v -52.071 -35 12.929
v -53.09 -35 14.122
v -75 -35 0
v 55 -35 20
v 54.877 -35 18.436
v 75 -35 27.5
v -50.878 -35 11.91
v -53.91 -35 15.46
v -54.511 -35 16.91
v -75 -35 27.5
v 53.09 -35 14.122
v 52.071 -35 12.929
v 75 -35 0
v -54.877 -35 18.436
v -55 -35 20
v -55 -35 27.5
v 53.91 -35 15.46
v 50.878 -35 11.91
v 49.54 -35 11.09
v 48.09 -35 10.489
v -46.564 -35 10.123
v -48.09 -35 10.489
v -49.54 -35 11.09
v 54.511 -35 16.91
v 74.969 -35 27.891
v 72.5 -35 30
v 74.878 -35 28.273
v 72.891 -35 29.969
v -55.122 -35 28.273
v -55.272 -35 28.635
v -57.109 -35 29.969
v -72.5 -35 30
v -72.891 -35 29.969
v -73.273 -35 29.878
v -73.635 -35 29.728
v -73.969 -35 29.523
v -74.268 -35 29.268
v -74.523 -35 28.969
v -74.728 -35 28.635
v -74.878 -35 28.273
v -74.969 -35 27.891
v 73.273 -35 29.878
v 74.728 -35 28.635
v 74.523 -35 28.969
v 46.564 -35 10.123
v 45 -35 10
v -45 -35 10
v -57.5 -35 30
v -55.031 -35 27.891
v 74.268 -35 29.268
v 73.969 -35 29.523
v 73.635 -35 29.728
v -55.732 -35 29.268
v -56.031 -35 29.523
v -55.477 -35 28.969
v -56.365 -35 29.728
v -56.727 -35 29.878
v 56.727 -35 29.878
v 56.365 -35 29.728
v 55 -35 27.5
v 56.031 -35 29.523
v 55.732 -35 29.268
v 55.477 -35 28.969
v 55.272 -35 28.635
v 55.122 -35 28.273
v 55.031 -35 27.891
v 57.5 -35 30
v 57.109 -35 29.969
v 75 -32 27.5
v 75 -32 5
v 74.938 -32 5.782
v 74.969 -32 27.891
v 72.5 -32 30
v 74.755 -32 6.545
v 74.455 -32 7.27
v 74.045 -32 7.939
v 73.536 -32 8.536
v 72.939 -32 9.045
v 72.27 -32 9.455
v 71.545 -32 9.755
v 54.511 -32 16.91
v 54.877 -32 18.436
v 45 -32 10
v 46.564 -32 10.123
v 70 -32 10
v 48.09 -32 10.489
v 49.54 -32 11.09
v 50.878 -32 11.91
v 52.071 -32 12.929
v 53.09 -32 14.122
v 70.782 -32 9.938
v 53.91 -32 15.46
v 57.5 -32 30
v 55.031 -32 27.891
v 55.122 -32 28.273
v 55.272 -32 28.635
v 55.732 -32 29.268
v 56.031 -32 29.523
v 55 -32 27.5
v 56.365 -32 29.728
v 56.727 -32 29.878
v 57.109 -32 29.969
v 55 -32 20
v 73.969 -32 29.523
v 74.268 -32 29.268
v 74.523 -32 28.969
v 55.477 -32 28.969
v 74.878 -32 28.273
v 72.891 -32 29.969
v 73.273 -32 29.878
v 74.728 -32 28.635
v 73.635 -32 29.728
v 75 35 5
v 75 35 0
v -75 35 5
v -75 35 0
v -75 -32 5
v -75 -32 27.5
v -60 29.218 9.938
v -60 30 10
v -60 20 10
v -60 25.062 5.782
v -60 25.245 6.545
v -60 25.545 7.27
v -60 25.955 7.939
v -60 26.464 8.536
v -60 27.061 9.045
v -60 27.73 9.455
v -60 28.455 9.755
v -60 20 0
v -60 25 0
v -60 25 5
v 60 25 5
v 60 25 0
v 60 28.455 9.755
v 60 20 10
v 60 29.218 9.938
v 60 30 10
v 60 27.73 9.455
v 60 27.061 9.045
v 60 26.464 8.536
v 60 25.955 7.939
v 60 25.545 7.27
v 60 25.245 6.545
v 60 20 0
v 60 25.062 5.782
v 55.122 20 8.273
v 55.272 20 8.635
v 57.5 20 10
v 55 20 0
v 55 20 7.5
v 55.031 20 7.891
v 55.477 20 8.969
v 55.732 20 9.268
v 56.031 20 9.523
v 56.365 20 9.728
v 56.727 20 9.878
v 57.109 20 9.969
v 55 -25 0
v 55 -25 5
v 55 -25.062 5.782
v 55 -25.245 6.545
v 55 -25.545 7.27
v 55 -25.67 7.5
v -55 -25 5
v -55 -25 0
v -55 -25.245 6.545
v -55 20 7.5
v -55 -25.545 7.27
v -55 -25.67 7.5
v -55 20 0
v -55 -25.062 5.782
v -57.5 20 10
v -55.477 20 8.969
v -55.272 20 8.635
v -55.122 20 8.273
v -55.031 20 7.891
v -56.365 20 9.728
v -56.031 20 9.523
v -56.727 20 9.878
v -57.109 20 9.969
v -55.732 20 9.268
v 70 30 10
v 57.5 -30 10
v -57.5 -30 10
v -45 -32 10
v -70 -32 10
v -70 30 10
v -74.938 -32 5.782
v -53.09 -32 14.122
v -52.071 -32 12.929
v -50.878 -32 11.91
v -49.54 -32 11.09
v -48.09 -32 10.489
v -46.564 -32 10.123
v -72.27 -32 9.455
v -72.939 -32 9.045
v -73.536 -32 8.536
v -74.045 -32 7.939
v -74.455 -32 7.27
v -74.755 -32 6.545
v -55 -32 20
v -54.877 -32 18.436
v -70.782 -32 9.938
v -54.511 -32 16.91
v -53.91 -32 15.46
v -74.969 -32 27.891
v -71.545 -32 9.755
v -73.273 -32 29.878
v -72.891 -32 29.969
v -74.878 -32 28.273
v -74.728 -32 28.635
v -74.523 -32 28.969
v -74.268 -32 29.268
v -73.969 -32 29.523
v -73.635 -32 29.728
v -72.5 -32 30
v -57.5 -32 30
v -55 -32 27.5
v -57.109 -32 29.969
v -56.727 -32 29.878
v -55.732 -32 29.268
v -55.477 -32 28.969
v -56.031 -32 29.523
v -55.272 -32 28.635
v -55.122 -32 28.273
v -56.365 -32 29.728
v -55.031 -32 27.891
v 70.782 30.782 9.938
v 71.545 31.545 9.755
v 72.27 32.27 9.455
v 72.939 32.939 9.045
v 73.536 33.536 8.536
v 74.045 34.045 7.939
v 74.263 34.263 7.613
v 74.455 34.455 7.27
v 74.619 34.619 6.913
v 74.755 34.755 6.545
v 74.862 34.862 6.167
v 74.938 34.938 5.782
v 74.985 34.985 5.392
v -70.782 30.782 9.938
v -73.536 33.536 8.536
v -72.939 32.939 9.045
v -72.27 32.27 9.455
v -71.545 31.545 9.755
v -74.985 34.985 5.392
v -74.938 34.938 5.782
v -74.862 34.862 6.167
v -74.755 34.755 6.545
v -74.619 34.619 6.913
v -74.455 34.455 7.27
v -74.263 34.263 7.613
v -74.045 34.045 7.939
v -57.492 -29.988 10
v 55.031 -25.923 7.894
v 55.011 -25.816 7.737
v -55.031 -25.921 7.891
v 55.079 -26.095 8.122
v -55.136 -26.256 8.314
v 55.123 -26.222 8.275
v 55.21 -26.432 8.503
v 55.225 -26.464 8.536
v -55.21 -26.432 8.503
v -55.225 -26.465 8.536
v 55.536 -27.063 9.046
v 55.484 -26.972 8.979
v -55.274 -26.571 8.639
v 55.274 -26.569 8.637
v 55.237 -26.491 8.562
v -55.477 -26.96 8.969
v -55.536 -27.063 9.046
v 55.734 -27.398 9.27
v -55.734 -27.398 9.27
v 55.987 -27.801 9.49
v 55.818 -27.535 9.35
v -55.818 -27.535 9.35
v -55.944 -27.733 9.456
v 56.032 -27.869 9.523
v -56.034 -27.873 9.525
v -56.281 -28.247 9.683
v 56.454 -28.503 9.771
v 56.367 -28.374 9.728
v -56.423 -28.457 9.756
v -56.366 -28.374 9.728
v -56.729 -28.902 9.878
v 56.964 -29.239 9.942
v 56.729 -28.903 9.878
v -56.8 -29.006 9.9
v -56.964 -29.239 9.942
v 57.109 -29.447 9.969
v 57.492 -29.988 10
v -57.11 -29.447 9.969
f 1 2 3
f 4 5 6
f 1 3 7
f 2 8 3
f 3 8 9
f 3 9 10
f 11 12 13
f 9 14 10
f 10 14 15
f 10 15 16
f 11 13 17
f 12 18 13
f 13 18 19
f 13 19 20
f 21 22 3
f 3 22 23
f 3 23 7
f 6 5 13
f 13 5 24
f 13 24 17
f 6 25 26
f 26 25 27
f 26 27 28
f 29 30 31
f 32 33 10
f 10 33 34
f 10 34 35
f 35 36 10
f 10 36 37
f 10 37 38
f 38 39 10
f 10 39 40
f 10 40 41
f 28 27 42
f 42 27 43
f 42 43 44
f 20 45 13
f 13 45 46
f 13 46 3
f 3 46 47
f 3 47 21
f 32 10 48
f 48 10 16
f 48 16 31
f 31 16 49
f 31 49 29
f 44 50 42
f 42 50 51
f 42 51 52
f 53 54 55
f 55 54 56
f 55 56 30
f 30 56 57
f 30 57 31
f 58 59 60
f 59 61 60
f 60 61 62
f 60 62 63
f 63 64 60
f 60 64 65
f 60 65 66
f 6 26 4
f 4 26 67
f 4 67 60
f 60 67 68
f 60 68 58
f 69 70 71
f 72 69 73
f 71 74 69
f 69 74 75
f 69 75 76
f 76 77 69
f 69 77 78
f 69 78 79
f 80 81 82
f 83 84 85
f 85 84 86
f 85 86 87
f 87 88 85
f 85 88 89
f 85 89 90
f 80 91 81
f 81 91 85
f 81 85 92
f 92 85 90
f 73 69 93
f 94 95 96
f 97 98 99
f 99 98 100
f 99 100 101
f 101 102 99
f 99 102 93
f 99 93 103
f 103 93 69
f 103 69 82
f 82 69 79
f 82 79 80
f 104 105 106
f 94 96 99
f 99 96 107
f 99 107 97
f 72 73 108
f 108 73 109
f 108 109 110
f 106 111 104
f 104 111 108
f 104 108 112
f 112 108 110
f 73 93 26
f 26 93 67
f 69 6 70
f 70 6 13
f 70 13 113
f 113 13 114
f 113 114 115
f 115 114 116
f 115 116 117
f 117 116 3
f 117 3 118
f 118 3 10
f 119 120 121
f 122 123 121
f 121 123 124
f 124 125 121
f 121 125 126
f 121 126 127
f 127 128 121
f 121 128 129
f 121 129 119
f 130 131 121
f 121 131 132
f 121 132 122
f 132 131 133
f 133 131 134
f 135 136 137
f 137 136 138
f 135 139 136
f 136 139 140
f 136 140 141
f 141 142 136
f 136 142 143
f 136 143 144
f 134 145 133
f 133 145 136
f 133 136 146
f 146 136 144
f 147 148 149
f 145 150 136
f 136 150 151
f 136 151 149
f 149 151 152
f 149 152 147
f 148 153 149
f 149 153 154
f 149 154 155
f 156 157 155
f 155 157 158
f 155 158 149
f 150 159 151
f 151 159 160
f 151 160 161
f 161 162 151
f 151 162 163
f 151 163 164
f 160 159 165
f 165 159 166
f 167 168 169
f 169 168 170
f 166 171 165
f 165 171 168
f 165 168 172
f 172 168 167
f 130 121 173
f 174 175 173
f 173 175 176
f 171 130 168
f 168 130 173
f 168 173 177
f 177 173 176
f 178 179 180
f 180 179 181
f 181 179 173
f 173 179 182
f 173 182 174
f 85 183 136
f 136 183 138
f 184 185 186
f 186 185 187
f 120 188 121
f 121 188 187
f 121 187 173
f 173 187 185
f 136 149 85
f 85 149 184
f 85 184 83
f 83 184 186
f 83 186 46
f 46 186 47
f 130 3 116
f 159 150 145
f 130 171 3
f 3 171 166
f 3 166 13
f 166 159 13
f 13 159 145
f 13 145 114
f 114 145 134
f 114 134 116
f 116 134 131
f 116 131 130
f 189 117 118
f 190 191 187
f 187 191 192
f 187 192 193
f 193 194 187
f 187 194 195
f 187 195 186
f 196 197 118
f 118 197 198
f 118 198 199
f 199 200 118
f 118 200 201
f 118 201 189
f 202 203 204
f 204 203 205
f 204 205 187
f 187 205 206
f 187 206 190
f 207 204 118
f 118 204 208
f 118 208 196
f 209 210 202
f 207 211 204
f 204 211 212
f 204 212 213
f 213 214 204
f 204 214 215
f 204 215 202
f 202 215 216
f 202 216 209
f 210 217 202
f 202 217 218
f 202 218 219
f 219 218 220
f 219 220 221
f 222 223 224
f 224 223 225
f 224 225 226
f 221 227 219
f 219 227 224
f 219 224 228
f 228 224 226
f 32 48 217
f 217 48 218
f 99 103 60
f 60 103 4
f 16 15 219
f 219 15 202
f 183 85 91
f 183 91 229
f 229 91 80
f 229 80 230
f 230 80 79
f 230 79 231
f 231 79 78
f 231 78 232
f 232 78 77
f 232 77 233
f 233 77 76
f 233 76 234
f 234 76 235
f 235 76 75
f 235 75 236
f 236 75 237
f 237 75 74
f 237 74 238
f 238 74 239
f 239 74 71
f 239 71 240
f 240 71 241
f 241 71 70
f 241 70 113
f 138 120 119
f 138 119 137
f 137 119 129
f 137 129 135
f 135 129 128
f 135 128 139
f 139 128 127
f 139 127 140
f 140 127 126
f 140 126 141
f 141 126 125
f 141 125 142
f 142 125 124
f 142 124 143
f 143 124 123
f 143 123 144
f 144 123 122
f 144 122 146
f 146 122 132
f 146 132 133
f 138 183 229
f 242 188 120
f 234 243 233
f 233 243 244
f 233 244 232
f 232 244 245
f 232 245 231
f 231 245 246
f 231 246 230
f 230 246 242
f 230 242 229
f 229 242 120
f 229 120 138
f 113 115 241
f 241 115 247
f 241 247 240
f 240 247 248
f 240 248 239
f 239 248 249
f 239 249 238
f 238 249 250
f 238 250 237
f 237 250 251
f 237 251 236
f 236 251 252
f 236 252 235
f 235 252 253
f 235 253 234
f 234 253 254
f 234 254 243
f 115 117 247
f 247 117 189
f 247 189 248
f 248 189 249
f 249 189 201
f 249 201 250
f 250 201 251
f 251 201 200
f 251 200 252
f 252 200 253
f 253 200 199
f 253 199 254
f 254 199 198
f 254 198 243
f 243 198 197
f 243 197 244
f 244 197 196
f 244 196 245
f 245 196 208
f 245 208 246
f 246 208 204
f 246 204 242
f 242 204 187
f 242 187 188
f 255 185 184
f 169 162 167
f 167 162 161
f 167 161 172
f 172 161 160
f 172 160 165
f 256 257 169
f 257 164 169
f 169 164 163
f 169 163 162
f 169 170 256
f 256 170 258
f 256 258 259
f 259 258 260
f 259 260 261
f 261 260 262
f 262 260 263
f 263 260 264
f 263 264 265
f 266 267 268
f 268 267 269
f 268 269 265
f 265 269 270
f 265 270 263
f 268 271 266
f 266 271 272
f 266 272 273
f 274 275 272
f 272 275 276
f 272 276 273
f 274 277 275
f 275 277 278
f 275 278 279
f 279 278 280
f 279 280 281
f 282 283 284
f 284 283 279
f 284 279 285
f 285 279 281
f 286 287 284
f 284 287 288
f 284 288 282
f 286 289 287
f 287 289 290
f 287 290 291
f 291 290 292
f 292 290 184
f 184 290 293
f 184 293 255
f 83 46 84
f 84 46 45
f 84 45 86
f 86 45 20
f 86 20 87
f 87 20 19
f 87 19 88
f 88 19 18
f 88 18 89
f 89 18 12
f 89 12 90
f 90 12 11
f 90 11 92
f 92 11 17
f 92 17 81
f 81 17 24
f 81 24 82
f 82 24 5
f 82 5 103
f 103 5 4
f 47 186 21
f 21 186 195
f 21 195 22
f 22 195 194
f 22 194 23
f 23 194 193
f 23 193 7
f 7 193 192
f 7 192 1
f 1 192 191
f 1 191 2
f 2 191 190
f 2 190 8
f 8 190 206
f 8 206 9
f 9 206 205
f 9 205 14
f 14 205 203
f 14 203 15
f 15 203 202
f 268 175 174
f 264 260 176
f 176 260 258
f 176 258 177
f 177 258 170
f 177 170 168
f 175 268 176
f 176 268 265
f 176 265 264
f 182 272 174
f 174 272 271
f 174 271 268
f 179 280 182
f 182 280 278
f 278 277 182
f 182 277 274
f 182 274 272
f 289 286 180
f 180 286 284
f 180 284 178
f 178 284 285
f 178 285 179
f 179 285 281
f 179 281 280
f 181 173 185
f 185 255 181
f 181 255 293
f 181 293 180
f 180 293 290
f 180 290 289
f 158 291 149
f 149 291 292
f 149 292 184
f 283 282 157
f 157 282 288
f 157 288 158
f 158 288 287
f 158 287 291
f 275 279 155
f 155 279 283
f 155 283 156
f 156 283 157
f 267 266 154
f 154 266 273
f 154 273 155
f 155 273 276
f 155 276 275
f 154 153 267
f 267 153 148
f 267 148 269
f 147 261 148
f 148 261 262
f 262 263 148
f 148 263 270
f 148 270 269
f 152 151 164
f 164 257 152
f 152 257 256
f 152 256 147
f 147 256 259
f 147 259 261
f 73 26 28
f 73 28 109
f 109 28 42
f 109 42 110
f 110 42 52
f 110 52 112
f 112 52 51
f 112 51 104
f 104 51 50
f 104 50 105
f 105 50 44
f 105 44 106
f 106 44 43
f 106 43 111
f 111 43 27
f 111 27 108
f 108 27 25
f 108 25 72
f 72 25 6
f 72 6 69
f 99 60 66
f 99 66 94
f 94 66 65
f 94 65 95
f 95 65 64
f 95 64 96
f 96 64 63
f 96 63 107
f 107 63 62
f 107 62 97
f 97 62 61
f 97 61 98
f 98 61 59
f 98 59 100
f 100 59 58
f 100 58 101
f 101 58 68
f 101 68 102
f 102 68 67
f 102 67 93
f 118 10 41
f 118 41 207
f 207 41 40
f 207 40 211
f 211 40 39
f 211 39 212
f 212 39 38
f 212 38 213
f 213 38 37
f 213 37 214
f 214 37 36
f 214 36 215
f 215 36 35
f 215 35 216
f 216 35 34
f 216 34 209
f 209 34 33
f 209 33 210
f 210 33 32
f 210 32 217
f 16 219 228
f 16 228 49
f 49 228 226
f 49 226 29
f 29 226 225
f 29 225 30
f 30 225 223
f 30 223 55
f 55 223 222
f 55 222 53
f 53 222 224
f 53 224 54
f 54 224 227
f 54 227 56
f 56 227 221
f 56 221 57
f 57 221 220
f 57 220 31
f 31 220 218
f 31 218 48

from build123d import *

# Parameters (mm, degrees)
SKETCH1_W           = 150
SKETCH1_H           = 70
BOSS_EXTRUDE1_DEPTH = 10
SKETCH2_W           = 150
SKETCH2_H           = 3
BOSS_EXTRUDE2_DEPTH = 20
SKETCH3_W           = 110
SKETCH3_H           = 20
CUT_EXTRUDE1_DEPTH  = 105.947605976
FILLET1_R           = 5
FILLET2_R           = 10
FILLET3_R           = 2.5


with BuildPart() as part:
    # Sketch1 → Boss-Extrude1 (new body)
    with BuildSketch(Plane.XY):
        Rectangle(SKETCH1_W, SKETCH1_H)
        Polygon((-60, 25), (-55, 25), (55, 25), (60, 25), (60, 20), (55, 20), (55, -25), (-55, -25), (-55, 20), (-60, 20), align=None, mode=Mode.SUBTRACT)
    extrude(amount=BOSS_EXTRUDE1_DEPTH)

    # Sketch2 → Boss-Extrude2 (add)
    with BuildSketch(Plane.XY.offset(10)):
        with Locations((0, -33.5)):
            Rectangle(SKETCH2_W, SKETCH2_H)
    extrude(amount=BOSS_EXTRUDE2_DEPTH)

    # Sketch3 → Cut-Extrude1 (cut, through all)
    with BuildSketch(Plane(origin=(0, -32, 0), x_dir=(1, 0, 0), z_dir=(0, 1, 0))):
        with Locations((0, -20)):
            Rectangle(SKETCH3_W, SKETCH3_H)
    extrude(amount=-CUT_EXTRUDE1_DEPTH, mode=Mode.SUBTRACT)

    # Fillet1
    fillet1_edges = [part.edges().sort_by_distance(p)[0] for p in [
        (0, 25, 10),
        (0, -25, 10),
        (75, 1.5, 10),
        (0, 35, 10),
        (-75, 1.5, 10),
    ]]
    fillet(fillet1_edges, radius=FILLET1_R - 0.0001)  # a hair under: the kernel refuses the full size

    # Fillet2
    fillet2_edges = [part.edges().sort_by_distance(p)[0] for p in [
        (55, -33.5, 10),
        (-55, -33.5, 10),
    ]]
    fillet(fillet2_edges, radius=FILLET2_R)

    # Fillet3
    fillet3_edges = [part.edges().sort_by_distance(p)[0] for p in [
        (55, -4.99995, 10),
        (-55, -4.99995, 10),
        (-75, -33.5, 30),
        (75, -33.5, 30),
        (55, -33.5, 30),
        (-55, -33.5, 30),
    ]]
    fillet(fillet3_edges, radius=FILLET3_R)


solid = part.part
